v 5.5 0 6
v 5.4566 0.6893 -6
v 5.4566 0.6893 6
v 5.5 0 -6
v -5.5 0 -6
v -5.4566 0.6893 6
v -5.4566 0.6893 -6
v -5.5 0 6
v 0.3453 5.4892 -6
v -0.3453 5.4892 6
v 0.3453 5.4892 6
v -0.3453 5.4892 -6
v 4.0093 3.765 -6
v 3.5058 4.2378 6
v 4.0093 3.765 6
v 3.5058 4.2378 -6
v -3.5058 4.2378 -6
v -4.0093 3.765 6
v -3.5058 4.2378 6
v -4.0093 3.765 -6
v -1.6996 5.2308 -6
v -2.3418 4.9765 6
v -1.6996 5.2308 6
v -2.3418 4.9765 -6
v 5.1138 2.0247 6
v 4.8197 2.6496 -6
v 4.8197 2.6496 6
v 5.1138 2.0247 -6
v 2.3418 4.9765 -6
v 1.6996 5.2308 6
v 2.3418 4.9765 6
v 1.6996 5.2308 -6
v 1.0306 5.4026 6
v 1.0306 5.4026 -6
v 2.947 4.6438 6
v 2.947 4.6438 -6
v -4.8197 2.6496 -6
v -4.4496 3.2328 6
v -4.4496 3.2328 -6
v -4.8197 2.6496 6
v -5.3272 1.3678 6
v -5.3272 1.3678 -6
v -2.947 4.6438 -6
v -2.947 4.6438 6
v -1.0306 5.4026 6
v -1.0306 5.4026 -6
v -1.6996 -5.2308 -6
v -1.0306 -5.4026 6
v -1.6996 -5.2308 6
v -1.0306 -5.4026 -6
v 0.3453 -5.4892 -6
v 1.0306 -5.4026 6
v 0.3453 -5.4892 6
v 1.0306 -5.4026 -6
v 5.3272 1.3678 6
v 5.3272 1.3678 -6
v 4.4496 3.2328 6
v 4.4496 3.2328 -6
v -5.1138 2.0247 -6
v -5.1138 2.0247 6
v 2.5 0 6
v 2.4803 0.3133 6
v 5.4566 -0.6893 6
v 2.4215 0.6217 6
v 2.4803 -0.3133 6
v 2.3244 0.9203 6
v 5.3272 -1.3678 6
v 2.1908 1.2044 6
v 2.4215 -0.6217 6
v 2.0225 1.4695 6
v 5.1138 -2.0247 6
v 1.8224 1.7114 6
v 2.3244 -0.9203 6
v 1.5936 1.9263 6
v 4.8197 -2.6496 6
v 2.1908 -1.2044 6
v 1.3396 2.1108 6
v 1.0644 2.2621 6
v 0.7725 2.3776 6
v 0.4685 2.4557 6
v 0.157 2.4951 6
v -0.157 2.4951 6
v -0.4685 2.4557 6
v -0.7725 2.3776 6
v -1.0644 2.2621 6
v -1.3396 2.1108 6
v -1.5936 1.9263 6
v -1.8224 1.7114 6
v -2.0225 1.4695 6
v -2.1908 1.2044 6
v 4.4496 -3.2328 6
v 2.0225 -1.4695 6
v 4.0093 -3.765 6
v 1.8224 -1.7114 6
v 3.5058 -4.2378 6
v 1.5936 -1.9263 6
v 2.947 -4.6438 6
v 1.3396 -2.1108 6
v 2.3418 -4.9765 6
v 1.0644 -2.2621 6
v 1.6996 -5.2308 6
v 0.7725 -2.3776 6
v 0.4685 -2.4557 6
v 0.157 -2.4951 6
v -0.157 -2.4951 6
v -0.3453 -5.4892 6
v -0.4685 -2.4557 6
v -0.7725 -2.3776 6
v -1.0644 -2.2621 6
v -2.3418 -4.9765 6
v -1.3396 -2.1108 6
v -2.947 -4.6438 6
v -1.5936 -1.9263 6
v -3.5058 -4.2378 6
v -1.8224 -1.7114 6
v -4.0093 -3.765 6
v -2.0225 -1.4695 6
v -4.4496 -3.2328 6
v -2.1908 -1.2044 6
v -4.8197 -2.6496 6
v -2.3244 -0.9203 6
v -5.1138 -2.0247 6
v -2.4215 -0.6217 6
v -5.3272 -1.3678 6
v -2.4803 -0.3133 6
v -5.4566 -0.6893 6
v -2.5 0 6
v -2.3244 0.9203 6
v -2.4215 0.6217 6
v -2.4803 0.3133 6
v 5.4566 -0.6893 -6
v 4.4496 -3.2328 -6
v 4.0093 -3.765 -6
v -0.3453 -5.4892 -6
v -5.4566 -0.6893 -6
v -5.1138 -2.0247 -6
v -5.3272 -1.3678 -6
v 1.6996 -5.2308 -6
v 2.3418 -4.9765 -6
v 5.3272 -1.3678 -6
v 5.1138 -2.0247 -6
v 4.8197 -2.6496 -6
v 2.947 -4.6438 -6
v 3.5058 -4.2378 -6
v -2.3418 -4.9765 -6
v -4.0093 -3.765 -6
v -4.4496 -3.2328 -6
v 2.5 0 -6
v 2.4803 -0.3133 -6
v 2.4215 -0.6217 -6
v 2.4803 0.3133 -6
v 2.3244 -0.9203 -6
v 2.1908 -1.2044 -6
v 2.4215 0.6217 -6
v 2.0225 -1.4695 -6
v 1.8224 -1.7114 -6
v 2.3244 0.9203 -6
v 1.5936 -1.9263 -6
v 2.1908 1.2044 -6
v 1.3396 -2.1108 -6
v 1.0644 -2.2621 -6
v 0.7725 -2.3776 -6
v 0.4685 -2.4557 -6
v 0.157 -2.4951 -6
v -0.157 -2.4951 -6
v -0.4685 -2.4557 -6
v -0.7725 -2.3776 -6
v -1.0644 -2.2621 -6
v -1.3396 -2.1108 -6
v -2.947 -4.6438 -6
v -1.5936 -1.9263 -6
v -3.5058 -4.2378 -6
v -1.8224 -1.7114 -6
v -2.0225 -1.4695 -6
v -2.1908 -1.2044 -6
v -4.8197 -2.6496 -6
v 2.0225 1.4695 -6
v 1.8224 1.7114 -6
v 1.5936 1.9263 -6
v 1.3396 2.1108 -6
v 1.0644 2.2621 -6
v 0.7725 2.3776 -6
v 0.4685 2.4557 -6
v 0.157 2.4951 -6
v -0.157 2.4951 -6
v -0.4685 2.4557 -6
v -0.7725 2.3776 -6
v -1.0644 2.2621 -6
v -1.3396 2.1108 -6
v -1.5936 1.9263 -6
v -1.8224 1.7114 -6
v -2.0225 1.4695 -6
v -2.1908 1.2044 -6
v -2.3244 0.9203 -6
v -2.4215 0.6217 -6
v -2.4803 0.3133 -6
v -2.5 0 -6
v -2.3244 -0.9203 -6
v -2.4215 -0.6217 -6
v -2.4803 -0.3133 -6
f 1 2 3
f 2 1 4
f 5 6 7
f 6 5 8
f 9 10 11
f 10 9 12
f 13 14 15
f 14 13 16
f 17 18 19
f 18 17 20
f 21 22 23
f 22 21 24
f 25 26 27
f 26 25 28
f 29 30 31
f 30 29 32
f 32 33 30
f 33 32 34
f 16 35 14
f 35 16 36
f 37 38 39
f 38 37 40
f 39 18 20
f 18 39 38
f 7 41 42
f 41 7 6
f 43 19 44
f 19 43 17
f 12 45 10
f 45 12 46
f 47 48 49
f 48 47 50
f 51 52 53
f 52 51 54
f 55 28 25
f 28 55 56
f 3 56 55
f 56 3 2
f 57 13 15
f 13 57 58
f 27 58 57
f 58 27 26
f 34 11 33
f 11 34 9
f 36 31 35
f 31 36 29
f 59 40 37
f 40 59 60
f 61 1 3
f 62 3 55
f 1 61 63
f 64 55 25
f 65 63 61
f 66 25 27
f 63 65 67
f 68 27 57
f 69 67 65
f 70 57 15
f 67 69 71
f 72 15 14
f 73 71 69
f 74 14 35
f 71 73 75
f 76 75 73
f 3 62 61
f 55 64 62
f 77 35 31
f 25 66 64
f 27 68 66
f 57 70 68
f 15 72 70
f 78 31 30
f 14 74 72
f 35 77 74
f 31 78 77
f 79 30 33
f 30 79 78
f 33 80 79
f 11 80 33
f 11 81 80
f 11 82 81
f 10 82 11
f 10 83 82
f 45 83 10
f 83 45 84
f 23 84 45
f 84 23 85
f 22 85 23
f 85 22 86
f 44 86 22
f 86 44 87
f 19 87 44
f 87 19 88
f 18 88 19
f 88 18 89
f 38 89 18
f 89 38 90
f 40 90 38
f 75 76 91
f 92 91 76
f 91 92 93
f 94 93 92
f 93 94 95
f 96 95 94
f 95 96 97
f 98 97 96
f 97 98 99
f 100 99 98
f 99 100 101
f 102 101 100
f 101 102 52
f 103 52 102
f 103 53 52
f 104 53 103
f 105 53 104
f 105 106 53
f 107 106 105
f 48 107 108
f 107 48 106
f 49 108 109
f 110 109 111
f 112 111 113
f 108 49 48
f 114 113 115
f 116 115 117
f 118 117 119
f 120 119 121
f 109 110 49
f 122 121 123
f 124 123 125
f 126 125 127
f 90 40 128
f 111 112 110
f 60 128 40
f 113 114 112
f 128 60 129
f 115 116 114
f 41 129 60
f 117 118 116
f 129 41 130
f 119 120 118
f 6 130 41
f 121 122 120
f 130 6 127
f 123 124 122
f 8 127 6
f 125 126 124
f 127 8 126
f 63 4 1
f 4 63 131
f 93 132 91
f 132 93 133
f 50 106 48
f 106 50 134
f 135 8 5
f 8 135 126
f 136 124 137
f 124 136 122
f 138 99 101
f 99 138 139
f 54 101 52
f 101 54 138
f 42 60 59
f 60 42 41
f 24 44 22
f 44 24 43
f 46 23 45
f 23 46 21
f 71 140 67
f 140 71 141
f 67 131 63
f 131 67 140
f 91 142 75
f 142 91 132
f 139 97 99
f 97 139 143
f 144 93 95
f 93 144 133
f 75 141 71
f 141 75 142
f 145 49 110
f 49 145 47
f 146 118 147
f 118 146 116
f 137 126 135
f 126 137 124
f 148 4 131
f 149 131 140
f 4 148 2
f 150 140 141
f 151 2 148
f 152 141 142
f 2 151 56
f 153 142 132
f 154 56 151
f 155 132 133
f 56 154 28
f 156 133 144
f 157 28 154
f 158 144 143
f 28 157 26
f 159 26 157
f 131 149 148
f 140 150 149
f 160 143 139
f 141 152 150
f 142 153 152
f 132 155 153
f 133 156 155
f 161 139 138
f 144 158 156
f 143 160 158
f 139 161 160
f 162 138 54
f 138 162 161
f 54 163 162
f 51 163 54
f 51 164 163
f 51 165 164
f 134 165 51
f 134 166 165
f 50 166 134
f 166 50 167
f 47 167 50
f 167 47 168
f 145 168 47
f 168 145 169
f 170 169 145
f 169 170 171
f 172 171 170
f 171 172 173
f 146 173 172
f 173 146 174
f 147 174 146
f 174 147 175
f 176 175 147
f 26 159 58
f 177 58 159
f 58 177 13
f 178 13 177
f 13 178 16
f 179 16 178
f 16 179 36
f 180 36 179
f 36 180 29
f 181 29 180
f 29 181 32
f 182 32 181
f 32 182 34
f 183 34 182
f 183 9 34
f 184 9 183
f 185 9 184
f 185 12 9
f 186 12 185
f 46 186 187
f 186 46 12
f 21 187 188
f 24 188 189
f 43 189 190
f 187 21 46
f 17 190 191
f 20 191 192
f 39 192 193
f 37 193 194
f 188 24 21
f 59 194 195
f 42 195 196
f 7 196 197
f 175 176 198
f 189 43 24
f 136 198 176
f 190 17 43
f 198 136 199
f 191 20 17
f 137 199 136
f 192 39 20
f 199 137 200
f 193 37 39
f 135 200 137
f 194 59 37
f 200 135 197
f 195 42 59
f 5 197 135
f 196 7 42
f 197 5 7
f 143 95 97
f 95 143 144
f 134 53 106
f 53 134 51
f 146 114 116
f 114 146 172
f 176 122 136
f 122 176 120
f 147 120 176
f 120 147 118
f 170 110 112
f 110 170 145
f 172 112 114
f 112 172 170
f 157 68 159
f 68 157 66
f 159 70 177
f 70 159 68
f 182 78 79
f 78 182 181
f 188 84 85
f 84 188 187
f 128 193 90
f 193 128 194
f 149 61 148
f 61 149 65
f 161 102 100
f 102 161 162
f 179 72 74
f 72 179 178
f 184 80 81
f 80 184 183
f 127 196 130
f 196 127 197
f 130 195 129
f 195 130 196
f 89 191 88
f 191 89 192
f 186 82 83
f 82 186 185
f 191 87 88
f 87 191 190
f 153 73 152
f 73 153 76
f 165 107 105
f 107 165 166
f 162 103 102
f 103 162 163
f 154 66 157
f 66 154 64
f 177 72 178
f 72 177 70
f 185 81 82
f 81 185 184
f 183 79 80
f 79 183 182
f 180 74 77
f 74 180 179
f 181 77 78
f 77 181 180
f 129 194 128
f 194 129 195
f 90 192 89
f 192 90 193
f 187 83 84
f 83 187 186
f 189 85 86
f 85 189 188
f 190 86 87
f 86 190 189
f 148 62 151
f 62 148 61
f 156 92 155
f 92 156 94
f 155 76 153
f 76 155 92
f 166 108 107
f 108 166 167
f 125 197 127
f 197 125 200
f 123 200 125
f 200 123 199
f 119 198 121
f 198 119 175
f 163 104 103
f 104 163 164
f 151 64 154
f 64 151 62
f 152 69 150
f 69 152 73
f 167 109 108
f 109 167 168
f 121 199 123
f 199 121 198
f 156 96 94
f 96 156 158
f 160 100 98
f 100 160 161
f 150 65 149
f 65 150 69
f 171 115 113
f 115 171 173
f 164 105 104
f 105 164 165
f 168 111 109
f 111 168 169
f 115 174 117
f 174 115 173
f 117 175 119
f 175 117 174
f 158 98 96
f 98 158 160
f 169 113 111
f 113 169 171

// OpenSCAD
$fn = 50;


difference() {
	union() {
		translate(v = [0, 0, -6.0000000000]) {
			cylinder(h = 12, r = 5.5000000000);
		}
	}
	union() {
		translate(v = [0, 0, -100.0000000000]) {
			cylinder(h = 200, r = 2.5000000000);
		}
	}
}
